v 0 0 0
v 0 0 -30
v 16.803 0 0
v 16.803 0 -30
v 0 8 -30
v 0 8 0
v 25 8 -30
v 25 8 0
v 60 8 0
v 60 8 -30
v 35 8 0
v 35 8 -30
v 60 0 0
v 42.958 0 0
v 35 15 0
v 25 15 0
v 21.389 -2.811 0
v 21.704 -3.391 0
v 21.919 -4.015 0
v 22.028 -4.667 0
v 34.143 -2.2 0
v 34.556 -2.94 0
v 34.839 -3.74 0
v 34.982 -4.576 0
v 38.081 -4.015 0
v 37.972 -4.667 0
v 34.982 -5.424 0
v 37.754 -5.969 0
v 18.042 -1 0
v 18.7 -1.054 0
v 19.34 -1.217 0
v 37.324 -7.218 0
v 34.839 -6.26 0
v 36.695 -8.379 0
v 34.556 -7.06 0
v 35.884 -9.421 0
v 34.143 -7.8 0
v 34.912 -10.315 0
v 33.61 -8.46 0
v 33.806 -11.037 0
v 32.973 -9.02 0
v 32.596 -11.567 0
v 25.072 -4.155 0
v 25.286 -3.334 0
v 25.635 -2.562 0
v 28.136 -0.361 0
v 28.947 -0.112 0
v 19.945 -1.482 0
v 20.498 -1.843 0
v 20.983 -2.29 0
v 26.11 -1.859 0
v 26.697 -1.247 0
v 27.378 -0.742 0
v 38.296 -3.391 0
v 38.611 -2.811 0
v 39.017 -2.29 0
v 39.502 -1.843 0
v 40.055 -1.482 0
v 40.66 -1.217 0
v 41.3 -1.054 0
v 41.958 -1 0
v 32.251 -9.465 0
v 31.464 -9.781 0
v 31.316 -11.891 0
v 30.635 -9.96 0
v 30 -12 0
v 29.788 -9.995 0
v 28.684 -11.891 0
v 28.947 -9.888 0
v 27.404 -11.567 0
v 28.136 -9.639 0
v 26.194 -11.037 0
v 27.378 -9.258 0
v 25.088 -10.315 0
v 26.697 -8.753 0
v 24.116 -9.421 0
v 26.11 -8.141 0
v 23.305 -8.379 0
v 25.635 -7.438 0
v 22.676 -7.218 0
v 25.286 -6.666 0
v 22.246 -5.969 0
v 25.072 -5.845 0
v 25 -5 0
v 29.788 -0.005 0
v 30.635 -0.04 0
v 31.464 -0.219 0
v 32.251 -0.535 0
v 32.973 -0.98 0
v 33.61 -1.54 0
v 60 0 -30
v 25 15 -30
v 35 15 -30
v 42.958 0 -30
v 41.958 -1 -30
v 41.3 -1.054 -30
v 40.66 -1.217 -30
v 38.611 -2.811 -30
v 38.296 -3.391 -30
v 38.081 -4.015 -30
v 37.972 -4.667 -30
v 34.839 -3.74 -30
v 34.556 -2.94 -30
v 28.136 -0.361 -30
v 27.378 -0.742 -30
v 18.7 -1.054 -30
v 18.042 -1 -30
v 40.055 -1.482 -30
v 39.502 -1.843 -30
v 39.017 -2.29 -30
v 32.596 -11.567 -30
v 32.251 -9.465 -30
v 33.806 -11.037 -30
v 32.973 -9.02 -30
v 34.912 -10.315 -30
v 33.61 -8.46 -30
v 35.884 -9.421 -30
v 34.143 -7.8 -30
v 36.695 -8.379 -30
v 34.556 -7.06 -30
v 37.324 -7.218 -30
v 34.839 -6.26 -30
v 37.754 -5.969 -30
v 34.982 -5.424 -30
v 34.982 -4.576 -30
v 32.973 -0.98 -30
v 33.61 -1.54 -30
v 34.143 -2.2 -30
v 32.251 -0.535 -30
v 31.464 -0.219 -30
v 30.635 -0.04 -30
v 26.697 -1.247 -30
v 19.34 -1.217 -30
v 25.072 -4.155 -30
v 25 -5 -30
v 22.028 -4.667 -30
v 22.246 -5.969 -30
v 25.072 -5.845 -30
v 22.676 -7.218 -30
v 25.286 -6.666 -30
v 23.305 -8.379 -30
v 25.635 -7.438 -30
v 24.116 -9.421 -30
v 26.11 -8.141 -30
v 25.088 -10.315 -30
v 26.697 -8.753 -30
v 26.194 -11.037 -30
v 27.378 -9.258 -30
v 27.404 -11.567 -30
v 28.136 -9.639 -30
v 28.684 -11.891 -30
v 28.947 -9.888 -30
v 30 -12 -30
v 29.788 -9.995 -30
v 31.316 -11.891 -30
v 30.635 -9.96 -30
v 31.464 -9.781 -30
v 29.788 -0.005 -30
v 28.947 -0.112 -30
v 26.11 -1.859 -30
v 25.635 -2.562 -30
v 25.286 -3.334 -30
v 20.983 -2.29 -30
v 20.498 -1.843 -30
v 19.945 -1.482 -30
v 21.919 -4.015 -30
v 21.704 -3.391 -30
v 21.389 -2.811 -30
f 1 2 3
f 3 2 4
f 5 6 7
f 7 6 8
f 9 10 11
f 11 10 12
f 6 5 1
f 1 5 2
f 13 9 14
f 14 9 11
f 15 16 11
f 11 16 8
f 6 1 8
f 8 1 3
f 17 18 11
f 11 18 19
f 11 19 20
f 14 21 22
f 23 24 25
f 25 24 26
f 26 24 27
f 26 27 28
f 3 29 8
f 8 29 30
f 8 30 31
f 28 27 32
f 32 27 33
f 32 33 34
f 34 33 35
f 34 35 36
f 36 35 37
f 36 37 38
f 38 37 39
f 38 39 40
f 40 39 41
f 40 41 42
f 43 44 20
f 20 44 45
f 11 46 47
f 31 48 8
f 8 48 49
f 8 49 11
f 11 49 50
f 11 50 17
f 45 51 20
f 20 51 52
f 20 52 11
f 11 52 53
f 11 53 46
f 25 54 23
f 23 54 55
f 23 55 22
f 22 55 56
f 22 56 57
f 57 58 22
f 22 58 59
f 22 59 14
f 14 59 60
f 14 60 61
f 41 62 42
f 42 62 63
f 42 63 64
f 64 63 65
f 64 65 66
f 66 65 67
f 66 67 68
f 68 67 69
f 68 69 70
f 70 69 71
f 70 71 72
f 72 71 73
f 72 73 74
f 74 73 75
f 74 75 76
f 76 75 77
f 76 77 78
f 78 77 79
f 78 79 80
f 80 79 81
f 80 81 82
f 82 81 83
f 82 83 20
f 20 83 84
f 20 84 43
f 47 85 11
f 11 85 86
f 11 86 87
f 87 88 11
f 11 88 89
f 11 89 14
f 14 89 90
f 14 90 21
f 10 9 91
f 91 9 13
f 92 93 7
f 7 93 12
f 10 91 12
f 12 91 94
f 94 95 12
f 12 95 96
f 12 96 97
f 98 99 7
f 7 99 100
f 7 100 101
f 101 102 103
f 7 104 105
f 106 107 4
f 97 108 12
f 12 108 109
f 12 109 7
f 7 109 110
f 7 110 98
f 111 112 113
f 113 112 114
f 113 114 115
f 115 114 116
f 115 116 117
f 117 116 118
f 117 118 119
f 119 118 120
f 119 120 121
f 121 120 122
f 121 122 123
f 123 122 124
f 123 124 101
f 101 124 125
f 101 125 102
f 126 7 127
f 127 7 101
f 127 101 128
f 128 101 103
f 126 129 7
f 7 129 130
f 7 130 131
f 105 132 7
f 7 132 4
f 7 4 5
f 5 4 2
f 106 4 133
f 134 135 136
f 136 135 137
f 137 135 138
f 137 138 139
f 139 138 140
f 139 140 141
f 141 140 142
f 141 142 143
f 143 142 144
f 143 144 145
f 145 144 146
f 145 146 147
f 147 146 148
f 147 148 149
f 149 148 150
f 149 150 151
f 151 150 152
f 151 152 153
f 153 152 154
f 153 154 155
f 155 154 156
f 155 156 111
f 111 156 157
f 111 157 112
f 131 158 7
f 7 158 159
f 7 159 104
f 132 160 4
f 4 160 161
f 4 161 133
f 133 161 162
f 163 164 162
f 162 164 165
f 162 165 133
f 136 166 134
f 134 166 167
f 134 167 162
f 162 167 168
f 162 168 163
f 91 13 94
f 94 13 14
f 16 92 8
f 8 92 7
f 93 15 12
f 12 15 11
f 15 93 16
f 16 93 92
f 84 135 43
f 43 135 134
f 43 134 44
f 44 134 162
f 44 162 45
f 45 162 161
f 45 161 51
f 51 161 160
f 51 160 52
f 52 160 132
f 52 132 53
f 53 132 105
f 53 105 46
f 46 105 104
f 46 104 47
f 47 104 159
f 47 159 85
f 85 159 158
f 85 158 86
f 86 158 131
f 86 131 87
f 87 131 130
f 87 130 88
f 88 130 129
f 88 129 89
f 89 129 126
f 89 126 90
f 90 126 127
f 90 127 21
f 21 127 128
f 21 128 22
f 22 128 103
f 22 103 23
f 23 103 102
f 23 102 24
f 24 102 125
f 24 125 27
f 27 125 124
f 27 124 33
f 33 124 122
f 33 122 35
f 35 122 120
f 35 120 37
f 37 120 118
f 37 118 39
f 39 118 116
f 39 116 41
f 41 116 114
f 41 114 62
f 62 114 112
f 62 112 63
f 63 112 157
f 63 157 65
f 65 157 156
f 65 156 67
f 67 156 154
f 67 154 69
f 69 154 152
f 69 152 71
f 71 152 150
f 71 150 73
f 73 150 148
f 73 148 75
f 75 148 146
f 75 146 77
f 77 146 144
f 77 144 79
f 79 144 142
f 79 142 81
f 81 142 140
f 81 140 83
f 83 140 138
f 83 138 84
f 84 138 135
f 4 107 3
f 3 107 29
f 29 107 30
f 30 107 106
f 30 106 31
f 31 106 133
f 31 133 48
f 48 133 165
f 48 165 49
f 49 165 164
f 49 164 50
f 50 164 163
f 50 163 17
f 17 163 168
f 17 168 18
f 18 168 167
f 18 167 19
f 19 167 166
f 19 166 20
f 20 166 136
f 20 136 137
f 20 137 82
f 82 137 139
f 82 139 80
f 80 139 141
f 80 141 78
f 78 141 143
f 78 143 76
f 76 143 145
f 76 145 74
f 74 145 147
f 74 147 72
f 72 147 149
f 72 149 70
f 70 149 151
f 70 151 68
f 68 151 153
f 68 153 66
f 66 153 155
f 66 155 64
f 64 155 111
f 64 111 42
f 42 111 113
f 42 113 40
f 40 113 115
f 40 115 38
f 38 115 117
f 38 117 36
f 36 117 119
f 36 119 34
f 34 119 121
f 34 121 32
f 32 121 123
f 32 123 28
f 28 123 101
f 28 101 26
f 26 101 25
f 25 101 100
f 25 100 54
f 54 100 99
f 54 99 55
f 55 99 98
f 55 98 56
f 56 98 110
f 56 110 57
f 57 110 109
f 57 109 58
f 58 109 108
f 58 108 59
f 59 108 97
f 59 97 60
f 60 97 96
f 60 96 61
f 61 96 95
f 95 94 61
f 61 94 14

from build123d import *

# Parameters (mm, degrees)
SKETCH1_W           = 60
SKETCH1_H           = 30
BOSS_EXTRUDE1_DEPTH = 8
SKETCH3_W           = 10
SKETCH3_H           = 30
BOSS_EXTRUDE5_DEPTH = 7
SKETCH5_W           = 14
SKETCH5_H           = 30
BOSS_EXTRUDE6_DEPTH = 11
SKETCH6_R           = 5
CUT_EXTRUDE1_DEPTH  = 69.738635424
FILLET1_R           = 7
FILLET2_R           = 5
FILLET3_R           = 5
BOSS_EXTRUDE7_DEPTH = 30


with BuildPart() as part:
    # Sketch1 → Boss-Extrude1 (new body)
    with BuildSketch(Plane(origin=(0, 0, 0), x_dir=(1, 0, 0), z_dir=(0, 1, 0))):
        with Locations((30, 15)):
            Rectangle(SKETCH1_W, SKETCH1_H)
    extrude(amount=BOSS_EXTRUDE1_DEPTH)

    # Sketch3 → Boss-Extrude5 (add)
    with BuildSketch(Plane(origin=(0, 8, 0), x_dir=(1, 0, 0), z_dir=(0, 1, 0))):
        with Locations((30, 15)):
            Rectangle(SKETCH3_W, SKETCH3_H)
    extrude(amount=BOSS_EXTRUDE5_DEPTH)

    # Sketch5 → Boss-Extrude6 (add)
    with BuildSketch(Plane.XZ):
        with Locations((30, -15)):
            Rectangle(SKETCH5_W, SKETCH5_H)
    extrude(amount=BOSS_EXTRUDE6_DEPTH)

    # Sketch6 → Cut-Extrude1 (cut, through all)
    with BuildSketch(Plane(origin=(0, 0, -30), x_dir=(-1, 0, 0), z_dir=(0, 0, -1))):
        with Locations((-30, -5)):
            Circle(SKETCH6_R)
    extrude(amount=-CUT_EXTRUDE1_DEPTH, mode=Mode.SUBTRACT)

    # Fillet1
    fillet1_edges = [part.edges().sort_by_distance(p)[0] for p in [
        (23, -11, -15),
        (37, -11, -15),
    ]]
    fillet(fillet1_edges, radius=FILLET1_R - 0.0001)  # a hair under: the kernel refuses the full size

    # Fillet2
    fillet2_edges = [part.edges().sort_by_distance(p)[0] for p in [
        (23, 0, -15),
    ]]
    fillet(fillet2_edges, radius=FILLET2_R)

    # Fillet3
    fillet3_edges = [part.edges().sort_by_distance(p)[0] for p in [
        (37, 0, -15),
    ]]
    fillet(fillet3_edges, radius=FILLET3_R)

    # Sketch8 → Boss-Extrude7 (add)
    with BuildSketch(Plane(origin=(0, 0, -30), x_dir=(-1, 0, 0), z_dir=(0, 0, -1))):
        with BuildLine():
            Line((-41.958260743, -1), (-42.958260743, 0))
            Line((-42.958260743, 0), (-41.958260743, 0))
            ThreePointArc((-41.958260743, 0), (-38.573244741, -1.320099639), (-36.9756521, -4.583333333))
            ThreePointArc((-36.9756521, -4.583333333), (-34.739022403, -9.151860505), (-30, -11))
            ThreePointArc((-30, -11), (-25.260977597, -9.151860505), (-23.0243479, -4.583333333))
            ThreePointArc((-23.0243479, -4.583333333), (-21.426755259, -1.320099639), (-18.041739257, 0))
            Line((-18.041739257, 0), (-16.803044796, 0))
            Line((-16.803044796, 0), (-18.041739257, -1))
            ThreePointArc((-18.041739257, -1), (-20.749752058, -2.056079711), (-22.027826171, -4.666666667))
            ThreePointArc((-22.027826171, -4.666666667), (-24.583974397, -9.887840578), (-30, -12))
            ThreePointArc((-30, -12), (-35.416025603, -9.887840578), (-37.972173829, -4.666666667))
            ThreePointArc((-37.972173829, -4.666666667), (-39.250247942, -2.056079711), (-41.958260743, -1))
        make_face()
    extrude(amount=-BOSS_EXTRUDE7_DEPTH)


solid = part.part
